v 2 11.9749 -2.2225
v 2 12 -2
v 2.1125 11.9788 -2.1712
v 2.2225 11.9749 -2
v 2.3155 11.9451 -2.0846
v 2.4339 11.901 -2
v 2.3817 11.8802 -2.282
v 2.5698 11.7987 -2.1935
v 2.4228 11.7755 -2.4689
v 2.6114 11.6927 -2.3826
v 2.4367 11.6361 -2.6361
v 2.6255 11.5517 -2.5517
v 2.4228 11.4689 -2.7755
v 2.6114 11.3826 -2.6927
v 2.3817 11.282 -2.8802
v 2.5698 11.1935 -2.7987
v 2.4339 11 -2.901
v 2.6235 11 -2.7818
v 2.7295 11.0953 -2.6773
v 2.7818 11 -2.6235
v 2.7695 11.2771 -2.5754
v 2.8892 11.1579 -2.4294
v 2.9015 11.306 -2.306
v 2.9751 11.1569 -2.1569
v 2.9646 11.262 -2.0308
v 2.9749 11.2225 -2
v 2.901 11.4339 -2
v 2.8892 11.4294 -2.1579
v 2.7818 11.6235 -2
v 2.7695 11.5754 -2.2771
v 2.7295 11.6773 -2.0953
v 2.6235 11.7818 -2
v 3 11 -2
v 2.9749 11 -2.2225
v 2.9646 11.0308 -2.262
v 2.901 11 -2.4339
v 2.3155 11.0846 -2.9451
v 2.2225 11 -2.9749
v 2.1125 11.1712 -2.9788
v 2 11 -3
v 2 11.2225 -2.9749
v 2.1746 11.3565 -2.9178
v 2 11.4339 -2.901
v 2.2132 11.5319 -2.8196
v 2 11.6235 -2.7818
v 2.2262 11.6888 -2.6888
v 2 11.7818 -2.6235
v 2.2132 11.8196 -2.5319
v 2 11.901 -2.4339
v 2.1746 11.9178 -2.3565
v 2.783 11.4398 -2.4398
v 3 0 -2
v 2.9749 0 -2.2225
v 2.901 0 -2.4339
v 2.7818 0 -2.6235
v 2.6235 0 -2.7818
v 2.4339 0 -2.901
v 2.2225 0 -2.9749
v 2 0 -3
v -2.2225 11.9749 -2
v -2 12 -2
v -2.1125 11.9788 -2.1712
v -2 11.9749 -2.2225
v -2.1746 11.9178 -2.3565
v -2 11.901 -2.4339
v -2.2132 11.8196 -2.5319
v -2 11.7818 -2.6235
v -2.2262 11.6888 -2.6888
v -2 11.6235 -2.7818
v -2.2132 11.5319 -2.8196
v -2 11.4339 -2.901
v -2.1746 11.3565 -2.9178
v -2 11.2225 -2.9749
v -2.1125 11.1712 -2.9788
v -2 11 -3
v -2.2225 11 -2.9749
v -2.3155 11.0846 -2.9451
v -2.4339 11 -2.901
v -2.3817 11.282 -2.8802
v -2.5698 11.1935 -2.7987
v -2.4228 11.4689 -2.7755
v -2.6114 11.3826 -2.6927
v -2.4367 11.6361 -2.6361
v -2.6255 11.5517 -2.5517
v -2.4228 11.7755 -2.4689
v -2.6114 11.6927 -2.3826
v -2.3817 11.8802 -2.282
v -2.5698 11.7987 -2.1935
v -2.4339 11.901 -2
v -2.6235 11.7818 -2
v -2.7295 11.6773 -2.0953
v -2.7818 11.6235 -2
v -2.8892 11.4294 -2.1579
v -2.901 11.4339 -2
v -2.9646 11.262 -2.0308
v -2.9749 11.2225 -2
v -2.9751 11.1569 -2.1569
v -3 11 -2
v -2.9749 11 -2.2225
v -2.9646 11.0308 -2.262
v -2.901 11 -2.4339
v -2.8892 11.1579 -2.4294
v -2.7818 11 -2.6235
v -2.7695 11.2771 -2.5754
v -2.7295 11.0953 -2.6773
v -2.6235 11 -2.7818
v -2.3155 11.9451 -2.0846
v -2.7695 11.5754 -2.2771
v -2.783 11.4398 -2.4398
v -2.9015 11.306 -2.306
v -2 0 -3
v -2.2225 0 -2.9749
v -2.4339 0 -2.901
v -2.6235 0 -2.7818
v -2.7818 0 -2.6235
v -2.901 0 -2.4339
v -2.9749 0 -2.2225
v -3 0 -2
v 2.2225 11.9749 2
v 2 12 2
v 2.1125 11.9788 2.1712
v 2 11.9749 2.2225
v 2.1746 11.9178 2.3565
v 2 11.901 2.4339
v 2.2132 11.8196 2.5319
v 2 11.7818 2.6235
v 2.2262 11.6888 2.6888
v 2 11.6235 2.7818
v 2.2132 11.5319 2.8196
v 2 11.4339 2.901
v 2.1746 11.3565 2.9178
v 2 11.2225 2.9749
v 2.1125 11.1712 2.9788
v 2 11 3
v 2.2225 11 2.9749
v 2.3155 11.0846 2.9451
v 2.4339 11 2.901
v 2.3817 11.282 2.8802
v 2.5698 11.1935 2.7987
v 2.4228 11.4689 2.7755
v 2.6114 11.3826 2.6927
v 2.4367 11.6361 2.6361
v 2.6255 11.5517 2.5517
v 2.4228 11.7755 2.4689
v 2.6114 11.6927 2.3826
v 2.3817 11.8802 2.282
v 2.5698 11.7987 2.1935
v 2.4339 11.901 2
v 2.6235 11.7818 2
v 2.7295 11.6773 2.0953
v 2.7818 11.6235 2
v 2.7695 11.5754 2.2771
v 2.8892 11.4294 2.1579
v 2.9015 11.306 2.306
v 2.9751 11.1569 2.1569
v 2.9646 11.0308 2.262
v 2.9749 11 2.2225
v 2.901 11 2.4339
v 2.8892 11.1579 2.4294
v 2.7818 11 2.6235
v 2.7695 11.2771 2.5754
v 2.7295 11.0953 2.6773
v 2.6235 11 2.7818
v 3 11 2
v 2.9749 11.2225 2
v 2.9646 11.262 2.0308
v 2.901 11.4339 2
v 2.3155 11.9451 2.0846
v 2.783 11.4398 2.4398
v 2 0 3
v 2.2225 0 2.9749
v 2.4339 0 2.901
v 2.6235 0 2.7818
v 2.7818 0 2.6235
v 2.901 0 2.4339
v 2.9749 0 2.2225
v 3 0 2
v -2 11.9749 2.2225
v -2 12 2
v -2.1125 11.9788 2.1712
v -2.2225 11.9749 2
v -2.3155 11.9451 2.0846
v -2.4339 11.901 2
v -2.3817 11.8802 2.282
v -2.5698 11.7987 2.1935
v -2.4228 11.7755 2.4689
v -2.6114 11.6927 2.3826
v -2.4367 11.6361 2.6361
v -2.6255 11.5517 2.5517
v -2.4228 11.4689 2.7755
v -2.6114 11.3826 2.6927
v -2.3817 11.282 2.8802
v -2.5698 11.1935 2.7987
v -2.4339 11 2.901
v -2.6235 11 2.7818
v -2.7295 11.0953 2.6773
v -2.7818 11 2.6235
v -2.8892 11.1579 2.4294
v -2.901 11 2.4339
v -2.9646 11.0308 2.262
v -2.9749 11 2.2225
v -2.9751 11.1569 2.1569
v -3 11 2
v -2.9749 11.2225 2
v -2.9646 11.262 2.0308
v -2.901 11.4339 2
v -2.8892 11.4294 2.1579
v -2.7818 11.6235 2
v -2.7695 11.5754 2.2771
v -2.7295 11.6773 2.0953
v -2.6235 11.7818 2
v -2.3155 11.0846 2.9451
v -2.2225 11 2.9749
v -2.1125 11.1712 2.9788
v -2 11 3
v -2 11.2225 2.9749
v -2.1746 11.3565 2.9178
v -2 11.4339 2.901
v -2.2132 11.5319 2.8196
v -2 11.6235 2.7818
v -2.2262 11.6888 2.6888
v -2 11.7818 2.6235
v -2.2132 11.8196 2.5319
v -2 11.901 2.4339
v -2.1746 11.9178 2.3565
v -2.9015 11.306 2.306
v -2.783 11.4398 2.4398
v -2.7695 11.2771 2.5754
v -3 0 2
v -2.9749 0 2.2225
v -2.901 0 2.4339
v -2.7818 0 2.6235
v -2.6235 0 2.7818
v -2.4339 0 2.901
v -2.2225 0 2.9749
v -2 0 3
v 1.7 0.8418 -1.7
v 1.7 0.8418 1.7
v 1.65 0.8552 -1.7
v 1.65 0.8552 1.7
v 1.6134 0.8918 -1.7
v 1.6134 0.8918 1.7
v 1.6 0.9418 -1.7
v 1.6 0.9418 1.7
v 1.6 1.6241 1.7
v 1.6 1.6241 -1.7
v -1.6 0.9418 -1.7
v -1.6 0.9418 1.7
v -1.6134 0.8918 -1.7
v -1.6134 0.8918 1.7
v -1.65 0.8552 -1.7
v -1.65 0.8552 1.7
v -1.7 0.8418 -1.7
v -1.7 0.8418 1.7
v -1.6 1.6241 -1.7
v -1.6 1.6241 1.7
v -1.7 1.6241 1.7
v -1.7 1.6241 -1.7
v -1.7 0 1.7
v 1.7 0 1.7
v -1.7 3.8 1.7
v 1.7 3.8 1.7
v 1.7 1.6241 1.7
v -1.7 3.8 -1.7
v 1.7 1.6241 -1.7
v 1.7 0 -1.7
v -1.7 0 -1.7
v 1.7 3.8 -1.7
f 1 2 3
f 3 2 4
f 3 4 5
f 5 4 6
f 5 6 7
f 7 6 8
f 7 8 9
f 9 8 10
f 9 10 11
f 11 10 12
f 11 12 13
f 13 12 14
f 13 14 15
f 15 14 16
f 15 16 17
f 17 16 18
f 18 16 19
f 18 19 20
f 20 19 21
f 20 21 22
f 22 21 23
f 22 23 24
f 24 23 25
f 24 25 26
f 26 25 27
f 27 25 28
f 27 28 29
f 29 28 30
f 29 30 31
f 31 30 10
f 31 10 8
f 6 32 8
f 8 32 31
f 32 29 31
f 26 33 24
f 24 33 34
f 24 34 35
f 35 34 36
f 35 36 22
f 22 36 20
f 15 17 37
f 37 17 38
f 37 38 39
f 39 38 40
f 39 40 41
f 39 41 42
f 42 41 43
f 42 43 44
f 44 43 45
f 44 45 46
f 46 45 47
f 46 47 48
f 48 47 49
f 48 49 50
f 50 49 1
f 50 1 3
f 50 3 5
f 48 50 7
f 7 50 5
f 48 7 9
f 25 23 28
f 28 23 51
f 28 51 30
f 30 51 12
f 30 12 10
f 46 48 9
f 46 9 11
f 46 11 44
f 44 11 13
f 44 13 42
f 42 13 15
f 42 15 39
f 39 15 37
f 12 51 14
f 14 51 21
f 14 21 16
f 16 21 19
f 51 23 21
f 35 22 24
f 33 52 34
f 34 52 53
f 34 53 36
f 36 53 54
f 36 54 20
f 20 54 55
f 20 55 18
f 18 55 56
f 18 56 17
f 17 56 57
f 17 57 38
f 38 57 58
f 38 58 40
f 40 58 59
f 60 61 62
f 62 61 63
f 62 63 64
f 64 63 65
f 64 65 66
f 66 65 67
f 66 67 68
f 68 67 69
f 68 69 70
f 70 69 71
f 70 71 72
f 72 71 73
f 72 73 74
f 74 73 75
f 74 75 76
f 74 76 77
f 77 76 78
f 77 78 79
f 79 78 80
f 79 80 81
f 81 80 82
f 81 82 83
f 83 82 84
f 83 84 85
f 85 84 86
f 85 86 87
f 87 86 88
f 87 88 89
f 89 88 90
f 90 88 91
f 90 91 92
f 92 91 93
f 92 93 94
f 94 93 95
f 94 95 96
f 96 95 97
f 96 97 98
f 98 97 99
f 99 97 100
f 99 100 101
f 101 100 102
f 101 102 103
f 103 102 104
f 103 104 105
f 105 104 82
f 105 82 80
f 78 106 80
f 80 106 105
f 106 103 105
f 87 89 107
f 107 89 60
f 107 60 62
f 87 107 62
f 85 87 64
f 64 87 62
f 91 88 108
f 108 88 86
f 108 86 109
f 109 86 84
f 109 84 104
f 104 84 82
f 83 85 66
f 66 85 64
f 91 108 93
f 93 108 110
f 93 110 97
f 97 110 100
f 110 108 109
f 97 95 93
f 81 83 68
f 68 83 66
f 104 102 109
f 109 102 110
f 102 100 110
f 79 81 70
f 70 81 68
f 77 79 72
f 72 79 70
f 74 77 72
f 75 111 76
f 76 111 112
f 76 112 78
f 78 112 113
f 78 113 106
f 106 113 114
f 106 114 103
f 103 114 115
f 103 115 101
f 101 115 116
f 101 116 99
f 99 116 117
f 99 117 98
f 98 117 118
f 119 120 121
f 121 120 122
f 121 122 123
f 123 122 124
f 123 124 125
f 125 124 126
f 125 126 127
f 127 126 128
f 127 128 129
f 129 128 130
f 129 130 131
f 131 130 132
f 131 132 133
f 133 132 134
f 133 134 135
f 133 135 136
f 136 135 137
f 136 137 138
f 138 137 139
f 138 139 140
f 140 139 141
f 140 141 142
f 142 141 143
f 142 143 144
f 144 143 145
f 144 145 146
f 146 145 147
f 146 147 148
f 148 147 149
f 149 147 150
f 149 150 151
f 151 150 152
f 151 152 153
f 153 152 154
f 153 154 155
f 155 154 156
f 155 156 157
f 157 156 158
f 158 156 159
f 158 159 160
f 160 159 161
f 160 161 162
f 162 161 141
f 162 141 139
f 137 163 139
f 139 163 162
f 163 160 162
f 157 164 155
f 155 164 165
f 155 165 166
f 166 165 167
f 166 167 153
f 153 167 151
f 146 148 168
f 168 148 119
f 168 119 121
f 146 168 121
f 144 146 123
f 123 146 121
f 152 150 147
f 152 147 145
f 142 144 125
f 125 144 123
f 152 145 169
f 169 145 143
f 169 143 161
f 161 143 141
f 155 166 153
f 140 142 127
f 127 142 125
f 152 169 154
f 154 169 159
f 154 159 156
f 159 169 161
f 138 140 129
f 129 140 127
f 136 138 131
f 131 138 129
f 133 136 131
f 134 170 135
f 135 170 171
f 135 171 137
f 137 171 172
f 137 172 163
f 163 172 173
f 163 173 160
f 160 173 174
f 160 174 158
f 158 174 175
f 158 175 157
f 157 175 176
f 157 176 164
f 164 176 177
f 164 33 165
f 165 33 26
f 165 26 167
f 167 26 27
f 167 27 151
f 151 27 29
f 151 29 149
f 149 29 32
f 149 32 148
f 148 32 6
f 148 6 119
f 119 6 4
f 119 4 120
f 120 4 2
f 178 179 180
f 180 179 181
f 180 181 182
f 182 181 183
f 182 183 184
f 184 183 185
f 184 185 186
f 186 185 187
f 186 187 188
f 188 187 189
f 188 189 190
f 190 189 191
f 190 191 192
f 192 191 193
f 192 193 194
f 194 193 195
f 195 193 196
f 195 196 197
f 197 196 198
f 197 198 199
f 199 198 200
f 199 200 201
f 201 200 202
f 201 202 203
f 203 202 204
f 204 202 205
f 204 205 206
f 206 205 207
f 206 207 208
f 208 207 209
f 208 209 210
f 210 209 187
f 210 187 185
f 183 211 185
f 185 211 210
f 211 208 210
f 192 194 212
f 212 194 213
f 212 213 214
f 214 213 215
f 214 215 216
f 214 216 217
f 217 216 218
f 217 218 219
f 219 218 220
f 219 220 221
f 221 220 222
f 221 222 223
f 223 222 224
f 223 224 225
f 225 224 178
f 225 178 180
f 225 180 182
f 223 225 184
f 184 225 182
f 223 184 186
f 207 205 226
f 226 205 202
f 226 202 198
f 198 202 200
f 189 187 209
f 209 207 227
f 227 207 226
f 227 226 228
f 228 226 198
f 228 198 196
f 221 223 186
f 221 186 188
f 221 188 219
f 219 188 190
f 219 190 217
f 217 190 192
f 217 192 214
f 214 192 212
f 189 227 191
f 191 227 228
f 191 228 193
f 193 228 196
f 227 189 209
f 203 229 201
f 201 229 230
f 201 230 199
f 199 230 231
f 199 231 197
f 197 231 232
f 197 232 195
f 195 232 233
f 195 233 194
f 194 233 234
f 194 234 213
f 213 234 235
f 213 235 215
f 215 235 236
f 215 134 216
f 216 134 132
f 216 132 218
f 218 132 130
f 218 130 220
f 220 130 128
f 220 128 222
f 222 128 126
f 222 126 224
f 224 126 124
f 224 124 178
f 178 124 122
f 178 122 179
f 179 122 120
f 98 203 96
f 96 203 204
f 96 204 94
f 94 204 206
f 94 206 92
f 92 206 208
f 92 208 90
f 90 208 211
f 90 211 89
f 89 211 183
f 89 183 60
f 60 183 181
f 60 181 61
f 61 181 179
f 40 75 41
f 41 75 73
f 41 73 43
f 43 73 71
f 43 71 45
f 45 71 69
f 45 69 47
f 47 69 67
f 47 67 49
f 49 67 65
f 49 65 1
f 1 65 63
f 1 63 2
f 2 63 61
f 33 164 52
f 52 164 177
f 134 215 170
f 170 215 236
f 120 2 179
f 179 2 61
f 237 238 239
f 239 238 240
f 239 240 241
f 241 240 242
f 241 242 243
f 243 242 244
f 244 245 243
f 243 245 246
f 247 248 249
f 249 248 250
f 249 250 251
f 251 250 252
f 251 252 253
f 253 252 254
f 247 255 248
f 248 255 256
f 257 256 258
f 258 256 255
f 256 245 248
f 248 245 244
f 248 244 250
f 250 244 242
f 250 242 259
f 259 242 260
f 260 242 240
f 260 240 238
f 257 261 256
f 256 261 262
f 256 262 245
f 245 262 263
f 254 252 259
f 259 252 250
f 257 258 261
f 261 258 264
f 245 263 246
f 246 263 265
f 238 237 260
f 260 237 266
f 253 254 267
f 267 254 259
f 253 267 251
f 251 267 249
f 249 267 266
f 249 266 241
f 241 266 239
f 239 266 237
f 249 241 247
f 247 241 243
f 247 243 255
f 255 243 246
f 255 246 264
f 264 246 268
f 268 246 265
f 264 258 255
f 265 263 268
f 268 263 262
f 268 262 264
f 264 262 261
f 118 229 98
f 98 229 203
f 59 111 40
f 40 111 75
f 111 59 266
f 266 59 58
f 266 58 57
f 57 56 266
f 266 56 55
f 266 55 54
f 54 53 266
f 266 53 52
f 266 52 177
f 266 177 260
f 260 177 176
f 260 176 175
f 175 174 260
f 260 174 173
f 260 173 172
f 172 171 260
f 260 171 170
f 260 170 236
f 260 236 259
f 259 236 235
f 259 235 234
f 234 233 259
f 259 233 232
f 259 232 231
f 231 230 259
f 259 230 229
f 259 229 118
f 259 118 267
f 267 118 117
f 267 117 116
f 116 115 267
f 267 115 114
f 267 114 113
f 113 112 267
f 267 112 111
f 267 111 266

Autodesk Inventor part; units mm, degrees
ref_plane "YZ Plane" through (0, 0, 0) normal (1, 0, 0) x (0, 1, 0)
ref_plane "XZ Plane" through (0, 0, 0) normal (0, 1, 0) x (-1, 0, 0)
ref_plane "XY Plane" through (0, 0, 0) normal (0, 0, 1) x (1, 0, 0)
sketch "Sketch1" plane through (0, 0, 0) normal (0, 1, 0) x (-1, 0, 0)
  line L0 (3, 3) -> (-3, 3)
  line L1 (-3, 3) -> (-3, -3)
  line L2 (-3, -3) -> (3, -3)
  line L3 (3, -3) -> (3, 3)
  line L4 (3, 3) -> (-3, -3) construction
  line L5 (-3, 3) -> (3, -3) construction
  point P0 (0, 0)
  dimension "d0" = 6
  dimension "d1" = 6
extrude "Extrusion1" add sketch "Sketch1" along normal blind 12
sketch "Sketch2" plane through (0, 0, 0) normal (0, -1, 0) x (1, 0, 0)
  line L0 (-1.7, -1.7) -> (1.7, -1.7)
  line L1 (1.7, -1.7) -> (1.7, 1.7)
  line L2 (1.7, 1.7) -> (-1.7, 1.7)
  line L3 (-1.7, 1.7) -> (-1.7, -1.7)
  line L4 (-1.7, -1.7) -> (1.7, 1.7) construction
  line L5 (1.7, -1.7) -> (-1.7, 1.7) construction
  point P0 (0, 0)
  dimension "d4" = 3.4
  dimension "d5" = 3.4
extrude "Extrusion2" cut sketch "Sketch2" against normal blind 3.8
sketch "Sketch3" plane through (0, 0, 0) normal (0, 0, 1) x (1, 0, 0)
  line L0 (-1.65, 0.7481) -> (1.65, 0.7481) projected
  line L1 (1.25, 1.7481) -> (1.25, 0.7481) projected
  line L2 (-1.65, 1.7481) -> (1.65, 1.7481) projected
  line L3 (-1.25, 0.7481) -> (-1.25, 1.7481) projected
  line L4 (1.7, 0) -> (1.7, 3.8) projected
  line L5 (1.7, 1.6241) -> (1.6, 1.6241)
  line L6 (1.6, 1.6241) -> (1.6, 0.8418)
  line L7 (1.6, 0.8418) -> (1.7, 0.8418)
  line L8 (1.7, 0.8418) -> (1.7, 1.6241)
  point P0 (0, 0)
  dimension "d8" = 0.1
extrude "Extrusion3" add sketch "Sketch3" along normal mid plane 3.8 contours L7 L6 L5 L4
mirror "Mirror1" about plane through (0, 0, 0) normal (1, 0, 0) of "Extrusion3"
fillet "Fillet1" radius 0.1 2 edges at (-1.6, 0.8418, 0) (1.6, 0.8418, 0)
fillet "Fillet2" radius 1 8 edges at (-3, 6, 3) (3, 6, 3) (3, 6, -3) (-3, 6, -3) (0, 12, 3) (-3, 12, 0) (0, 12, -3) (3, 12, 0)
properties part number "Button"
